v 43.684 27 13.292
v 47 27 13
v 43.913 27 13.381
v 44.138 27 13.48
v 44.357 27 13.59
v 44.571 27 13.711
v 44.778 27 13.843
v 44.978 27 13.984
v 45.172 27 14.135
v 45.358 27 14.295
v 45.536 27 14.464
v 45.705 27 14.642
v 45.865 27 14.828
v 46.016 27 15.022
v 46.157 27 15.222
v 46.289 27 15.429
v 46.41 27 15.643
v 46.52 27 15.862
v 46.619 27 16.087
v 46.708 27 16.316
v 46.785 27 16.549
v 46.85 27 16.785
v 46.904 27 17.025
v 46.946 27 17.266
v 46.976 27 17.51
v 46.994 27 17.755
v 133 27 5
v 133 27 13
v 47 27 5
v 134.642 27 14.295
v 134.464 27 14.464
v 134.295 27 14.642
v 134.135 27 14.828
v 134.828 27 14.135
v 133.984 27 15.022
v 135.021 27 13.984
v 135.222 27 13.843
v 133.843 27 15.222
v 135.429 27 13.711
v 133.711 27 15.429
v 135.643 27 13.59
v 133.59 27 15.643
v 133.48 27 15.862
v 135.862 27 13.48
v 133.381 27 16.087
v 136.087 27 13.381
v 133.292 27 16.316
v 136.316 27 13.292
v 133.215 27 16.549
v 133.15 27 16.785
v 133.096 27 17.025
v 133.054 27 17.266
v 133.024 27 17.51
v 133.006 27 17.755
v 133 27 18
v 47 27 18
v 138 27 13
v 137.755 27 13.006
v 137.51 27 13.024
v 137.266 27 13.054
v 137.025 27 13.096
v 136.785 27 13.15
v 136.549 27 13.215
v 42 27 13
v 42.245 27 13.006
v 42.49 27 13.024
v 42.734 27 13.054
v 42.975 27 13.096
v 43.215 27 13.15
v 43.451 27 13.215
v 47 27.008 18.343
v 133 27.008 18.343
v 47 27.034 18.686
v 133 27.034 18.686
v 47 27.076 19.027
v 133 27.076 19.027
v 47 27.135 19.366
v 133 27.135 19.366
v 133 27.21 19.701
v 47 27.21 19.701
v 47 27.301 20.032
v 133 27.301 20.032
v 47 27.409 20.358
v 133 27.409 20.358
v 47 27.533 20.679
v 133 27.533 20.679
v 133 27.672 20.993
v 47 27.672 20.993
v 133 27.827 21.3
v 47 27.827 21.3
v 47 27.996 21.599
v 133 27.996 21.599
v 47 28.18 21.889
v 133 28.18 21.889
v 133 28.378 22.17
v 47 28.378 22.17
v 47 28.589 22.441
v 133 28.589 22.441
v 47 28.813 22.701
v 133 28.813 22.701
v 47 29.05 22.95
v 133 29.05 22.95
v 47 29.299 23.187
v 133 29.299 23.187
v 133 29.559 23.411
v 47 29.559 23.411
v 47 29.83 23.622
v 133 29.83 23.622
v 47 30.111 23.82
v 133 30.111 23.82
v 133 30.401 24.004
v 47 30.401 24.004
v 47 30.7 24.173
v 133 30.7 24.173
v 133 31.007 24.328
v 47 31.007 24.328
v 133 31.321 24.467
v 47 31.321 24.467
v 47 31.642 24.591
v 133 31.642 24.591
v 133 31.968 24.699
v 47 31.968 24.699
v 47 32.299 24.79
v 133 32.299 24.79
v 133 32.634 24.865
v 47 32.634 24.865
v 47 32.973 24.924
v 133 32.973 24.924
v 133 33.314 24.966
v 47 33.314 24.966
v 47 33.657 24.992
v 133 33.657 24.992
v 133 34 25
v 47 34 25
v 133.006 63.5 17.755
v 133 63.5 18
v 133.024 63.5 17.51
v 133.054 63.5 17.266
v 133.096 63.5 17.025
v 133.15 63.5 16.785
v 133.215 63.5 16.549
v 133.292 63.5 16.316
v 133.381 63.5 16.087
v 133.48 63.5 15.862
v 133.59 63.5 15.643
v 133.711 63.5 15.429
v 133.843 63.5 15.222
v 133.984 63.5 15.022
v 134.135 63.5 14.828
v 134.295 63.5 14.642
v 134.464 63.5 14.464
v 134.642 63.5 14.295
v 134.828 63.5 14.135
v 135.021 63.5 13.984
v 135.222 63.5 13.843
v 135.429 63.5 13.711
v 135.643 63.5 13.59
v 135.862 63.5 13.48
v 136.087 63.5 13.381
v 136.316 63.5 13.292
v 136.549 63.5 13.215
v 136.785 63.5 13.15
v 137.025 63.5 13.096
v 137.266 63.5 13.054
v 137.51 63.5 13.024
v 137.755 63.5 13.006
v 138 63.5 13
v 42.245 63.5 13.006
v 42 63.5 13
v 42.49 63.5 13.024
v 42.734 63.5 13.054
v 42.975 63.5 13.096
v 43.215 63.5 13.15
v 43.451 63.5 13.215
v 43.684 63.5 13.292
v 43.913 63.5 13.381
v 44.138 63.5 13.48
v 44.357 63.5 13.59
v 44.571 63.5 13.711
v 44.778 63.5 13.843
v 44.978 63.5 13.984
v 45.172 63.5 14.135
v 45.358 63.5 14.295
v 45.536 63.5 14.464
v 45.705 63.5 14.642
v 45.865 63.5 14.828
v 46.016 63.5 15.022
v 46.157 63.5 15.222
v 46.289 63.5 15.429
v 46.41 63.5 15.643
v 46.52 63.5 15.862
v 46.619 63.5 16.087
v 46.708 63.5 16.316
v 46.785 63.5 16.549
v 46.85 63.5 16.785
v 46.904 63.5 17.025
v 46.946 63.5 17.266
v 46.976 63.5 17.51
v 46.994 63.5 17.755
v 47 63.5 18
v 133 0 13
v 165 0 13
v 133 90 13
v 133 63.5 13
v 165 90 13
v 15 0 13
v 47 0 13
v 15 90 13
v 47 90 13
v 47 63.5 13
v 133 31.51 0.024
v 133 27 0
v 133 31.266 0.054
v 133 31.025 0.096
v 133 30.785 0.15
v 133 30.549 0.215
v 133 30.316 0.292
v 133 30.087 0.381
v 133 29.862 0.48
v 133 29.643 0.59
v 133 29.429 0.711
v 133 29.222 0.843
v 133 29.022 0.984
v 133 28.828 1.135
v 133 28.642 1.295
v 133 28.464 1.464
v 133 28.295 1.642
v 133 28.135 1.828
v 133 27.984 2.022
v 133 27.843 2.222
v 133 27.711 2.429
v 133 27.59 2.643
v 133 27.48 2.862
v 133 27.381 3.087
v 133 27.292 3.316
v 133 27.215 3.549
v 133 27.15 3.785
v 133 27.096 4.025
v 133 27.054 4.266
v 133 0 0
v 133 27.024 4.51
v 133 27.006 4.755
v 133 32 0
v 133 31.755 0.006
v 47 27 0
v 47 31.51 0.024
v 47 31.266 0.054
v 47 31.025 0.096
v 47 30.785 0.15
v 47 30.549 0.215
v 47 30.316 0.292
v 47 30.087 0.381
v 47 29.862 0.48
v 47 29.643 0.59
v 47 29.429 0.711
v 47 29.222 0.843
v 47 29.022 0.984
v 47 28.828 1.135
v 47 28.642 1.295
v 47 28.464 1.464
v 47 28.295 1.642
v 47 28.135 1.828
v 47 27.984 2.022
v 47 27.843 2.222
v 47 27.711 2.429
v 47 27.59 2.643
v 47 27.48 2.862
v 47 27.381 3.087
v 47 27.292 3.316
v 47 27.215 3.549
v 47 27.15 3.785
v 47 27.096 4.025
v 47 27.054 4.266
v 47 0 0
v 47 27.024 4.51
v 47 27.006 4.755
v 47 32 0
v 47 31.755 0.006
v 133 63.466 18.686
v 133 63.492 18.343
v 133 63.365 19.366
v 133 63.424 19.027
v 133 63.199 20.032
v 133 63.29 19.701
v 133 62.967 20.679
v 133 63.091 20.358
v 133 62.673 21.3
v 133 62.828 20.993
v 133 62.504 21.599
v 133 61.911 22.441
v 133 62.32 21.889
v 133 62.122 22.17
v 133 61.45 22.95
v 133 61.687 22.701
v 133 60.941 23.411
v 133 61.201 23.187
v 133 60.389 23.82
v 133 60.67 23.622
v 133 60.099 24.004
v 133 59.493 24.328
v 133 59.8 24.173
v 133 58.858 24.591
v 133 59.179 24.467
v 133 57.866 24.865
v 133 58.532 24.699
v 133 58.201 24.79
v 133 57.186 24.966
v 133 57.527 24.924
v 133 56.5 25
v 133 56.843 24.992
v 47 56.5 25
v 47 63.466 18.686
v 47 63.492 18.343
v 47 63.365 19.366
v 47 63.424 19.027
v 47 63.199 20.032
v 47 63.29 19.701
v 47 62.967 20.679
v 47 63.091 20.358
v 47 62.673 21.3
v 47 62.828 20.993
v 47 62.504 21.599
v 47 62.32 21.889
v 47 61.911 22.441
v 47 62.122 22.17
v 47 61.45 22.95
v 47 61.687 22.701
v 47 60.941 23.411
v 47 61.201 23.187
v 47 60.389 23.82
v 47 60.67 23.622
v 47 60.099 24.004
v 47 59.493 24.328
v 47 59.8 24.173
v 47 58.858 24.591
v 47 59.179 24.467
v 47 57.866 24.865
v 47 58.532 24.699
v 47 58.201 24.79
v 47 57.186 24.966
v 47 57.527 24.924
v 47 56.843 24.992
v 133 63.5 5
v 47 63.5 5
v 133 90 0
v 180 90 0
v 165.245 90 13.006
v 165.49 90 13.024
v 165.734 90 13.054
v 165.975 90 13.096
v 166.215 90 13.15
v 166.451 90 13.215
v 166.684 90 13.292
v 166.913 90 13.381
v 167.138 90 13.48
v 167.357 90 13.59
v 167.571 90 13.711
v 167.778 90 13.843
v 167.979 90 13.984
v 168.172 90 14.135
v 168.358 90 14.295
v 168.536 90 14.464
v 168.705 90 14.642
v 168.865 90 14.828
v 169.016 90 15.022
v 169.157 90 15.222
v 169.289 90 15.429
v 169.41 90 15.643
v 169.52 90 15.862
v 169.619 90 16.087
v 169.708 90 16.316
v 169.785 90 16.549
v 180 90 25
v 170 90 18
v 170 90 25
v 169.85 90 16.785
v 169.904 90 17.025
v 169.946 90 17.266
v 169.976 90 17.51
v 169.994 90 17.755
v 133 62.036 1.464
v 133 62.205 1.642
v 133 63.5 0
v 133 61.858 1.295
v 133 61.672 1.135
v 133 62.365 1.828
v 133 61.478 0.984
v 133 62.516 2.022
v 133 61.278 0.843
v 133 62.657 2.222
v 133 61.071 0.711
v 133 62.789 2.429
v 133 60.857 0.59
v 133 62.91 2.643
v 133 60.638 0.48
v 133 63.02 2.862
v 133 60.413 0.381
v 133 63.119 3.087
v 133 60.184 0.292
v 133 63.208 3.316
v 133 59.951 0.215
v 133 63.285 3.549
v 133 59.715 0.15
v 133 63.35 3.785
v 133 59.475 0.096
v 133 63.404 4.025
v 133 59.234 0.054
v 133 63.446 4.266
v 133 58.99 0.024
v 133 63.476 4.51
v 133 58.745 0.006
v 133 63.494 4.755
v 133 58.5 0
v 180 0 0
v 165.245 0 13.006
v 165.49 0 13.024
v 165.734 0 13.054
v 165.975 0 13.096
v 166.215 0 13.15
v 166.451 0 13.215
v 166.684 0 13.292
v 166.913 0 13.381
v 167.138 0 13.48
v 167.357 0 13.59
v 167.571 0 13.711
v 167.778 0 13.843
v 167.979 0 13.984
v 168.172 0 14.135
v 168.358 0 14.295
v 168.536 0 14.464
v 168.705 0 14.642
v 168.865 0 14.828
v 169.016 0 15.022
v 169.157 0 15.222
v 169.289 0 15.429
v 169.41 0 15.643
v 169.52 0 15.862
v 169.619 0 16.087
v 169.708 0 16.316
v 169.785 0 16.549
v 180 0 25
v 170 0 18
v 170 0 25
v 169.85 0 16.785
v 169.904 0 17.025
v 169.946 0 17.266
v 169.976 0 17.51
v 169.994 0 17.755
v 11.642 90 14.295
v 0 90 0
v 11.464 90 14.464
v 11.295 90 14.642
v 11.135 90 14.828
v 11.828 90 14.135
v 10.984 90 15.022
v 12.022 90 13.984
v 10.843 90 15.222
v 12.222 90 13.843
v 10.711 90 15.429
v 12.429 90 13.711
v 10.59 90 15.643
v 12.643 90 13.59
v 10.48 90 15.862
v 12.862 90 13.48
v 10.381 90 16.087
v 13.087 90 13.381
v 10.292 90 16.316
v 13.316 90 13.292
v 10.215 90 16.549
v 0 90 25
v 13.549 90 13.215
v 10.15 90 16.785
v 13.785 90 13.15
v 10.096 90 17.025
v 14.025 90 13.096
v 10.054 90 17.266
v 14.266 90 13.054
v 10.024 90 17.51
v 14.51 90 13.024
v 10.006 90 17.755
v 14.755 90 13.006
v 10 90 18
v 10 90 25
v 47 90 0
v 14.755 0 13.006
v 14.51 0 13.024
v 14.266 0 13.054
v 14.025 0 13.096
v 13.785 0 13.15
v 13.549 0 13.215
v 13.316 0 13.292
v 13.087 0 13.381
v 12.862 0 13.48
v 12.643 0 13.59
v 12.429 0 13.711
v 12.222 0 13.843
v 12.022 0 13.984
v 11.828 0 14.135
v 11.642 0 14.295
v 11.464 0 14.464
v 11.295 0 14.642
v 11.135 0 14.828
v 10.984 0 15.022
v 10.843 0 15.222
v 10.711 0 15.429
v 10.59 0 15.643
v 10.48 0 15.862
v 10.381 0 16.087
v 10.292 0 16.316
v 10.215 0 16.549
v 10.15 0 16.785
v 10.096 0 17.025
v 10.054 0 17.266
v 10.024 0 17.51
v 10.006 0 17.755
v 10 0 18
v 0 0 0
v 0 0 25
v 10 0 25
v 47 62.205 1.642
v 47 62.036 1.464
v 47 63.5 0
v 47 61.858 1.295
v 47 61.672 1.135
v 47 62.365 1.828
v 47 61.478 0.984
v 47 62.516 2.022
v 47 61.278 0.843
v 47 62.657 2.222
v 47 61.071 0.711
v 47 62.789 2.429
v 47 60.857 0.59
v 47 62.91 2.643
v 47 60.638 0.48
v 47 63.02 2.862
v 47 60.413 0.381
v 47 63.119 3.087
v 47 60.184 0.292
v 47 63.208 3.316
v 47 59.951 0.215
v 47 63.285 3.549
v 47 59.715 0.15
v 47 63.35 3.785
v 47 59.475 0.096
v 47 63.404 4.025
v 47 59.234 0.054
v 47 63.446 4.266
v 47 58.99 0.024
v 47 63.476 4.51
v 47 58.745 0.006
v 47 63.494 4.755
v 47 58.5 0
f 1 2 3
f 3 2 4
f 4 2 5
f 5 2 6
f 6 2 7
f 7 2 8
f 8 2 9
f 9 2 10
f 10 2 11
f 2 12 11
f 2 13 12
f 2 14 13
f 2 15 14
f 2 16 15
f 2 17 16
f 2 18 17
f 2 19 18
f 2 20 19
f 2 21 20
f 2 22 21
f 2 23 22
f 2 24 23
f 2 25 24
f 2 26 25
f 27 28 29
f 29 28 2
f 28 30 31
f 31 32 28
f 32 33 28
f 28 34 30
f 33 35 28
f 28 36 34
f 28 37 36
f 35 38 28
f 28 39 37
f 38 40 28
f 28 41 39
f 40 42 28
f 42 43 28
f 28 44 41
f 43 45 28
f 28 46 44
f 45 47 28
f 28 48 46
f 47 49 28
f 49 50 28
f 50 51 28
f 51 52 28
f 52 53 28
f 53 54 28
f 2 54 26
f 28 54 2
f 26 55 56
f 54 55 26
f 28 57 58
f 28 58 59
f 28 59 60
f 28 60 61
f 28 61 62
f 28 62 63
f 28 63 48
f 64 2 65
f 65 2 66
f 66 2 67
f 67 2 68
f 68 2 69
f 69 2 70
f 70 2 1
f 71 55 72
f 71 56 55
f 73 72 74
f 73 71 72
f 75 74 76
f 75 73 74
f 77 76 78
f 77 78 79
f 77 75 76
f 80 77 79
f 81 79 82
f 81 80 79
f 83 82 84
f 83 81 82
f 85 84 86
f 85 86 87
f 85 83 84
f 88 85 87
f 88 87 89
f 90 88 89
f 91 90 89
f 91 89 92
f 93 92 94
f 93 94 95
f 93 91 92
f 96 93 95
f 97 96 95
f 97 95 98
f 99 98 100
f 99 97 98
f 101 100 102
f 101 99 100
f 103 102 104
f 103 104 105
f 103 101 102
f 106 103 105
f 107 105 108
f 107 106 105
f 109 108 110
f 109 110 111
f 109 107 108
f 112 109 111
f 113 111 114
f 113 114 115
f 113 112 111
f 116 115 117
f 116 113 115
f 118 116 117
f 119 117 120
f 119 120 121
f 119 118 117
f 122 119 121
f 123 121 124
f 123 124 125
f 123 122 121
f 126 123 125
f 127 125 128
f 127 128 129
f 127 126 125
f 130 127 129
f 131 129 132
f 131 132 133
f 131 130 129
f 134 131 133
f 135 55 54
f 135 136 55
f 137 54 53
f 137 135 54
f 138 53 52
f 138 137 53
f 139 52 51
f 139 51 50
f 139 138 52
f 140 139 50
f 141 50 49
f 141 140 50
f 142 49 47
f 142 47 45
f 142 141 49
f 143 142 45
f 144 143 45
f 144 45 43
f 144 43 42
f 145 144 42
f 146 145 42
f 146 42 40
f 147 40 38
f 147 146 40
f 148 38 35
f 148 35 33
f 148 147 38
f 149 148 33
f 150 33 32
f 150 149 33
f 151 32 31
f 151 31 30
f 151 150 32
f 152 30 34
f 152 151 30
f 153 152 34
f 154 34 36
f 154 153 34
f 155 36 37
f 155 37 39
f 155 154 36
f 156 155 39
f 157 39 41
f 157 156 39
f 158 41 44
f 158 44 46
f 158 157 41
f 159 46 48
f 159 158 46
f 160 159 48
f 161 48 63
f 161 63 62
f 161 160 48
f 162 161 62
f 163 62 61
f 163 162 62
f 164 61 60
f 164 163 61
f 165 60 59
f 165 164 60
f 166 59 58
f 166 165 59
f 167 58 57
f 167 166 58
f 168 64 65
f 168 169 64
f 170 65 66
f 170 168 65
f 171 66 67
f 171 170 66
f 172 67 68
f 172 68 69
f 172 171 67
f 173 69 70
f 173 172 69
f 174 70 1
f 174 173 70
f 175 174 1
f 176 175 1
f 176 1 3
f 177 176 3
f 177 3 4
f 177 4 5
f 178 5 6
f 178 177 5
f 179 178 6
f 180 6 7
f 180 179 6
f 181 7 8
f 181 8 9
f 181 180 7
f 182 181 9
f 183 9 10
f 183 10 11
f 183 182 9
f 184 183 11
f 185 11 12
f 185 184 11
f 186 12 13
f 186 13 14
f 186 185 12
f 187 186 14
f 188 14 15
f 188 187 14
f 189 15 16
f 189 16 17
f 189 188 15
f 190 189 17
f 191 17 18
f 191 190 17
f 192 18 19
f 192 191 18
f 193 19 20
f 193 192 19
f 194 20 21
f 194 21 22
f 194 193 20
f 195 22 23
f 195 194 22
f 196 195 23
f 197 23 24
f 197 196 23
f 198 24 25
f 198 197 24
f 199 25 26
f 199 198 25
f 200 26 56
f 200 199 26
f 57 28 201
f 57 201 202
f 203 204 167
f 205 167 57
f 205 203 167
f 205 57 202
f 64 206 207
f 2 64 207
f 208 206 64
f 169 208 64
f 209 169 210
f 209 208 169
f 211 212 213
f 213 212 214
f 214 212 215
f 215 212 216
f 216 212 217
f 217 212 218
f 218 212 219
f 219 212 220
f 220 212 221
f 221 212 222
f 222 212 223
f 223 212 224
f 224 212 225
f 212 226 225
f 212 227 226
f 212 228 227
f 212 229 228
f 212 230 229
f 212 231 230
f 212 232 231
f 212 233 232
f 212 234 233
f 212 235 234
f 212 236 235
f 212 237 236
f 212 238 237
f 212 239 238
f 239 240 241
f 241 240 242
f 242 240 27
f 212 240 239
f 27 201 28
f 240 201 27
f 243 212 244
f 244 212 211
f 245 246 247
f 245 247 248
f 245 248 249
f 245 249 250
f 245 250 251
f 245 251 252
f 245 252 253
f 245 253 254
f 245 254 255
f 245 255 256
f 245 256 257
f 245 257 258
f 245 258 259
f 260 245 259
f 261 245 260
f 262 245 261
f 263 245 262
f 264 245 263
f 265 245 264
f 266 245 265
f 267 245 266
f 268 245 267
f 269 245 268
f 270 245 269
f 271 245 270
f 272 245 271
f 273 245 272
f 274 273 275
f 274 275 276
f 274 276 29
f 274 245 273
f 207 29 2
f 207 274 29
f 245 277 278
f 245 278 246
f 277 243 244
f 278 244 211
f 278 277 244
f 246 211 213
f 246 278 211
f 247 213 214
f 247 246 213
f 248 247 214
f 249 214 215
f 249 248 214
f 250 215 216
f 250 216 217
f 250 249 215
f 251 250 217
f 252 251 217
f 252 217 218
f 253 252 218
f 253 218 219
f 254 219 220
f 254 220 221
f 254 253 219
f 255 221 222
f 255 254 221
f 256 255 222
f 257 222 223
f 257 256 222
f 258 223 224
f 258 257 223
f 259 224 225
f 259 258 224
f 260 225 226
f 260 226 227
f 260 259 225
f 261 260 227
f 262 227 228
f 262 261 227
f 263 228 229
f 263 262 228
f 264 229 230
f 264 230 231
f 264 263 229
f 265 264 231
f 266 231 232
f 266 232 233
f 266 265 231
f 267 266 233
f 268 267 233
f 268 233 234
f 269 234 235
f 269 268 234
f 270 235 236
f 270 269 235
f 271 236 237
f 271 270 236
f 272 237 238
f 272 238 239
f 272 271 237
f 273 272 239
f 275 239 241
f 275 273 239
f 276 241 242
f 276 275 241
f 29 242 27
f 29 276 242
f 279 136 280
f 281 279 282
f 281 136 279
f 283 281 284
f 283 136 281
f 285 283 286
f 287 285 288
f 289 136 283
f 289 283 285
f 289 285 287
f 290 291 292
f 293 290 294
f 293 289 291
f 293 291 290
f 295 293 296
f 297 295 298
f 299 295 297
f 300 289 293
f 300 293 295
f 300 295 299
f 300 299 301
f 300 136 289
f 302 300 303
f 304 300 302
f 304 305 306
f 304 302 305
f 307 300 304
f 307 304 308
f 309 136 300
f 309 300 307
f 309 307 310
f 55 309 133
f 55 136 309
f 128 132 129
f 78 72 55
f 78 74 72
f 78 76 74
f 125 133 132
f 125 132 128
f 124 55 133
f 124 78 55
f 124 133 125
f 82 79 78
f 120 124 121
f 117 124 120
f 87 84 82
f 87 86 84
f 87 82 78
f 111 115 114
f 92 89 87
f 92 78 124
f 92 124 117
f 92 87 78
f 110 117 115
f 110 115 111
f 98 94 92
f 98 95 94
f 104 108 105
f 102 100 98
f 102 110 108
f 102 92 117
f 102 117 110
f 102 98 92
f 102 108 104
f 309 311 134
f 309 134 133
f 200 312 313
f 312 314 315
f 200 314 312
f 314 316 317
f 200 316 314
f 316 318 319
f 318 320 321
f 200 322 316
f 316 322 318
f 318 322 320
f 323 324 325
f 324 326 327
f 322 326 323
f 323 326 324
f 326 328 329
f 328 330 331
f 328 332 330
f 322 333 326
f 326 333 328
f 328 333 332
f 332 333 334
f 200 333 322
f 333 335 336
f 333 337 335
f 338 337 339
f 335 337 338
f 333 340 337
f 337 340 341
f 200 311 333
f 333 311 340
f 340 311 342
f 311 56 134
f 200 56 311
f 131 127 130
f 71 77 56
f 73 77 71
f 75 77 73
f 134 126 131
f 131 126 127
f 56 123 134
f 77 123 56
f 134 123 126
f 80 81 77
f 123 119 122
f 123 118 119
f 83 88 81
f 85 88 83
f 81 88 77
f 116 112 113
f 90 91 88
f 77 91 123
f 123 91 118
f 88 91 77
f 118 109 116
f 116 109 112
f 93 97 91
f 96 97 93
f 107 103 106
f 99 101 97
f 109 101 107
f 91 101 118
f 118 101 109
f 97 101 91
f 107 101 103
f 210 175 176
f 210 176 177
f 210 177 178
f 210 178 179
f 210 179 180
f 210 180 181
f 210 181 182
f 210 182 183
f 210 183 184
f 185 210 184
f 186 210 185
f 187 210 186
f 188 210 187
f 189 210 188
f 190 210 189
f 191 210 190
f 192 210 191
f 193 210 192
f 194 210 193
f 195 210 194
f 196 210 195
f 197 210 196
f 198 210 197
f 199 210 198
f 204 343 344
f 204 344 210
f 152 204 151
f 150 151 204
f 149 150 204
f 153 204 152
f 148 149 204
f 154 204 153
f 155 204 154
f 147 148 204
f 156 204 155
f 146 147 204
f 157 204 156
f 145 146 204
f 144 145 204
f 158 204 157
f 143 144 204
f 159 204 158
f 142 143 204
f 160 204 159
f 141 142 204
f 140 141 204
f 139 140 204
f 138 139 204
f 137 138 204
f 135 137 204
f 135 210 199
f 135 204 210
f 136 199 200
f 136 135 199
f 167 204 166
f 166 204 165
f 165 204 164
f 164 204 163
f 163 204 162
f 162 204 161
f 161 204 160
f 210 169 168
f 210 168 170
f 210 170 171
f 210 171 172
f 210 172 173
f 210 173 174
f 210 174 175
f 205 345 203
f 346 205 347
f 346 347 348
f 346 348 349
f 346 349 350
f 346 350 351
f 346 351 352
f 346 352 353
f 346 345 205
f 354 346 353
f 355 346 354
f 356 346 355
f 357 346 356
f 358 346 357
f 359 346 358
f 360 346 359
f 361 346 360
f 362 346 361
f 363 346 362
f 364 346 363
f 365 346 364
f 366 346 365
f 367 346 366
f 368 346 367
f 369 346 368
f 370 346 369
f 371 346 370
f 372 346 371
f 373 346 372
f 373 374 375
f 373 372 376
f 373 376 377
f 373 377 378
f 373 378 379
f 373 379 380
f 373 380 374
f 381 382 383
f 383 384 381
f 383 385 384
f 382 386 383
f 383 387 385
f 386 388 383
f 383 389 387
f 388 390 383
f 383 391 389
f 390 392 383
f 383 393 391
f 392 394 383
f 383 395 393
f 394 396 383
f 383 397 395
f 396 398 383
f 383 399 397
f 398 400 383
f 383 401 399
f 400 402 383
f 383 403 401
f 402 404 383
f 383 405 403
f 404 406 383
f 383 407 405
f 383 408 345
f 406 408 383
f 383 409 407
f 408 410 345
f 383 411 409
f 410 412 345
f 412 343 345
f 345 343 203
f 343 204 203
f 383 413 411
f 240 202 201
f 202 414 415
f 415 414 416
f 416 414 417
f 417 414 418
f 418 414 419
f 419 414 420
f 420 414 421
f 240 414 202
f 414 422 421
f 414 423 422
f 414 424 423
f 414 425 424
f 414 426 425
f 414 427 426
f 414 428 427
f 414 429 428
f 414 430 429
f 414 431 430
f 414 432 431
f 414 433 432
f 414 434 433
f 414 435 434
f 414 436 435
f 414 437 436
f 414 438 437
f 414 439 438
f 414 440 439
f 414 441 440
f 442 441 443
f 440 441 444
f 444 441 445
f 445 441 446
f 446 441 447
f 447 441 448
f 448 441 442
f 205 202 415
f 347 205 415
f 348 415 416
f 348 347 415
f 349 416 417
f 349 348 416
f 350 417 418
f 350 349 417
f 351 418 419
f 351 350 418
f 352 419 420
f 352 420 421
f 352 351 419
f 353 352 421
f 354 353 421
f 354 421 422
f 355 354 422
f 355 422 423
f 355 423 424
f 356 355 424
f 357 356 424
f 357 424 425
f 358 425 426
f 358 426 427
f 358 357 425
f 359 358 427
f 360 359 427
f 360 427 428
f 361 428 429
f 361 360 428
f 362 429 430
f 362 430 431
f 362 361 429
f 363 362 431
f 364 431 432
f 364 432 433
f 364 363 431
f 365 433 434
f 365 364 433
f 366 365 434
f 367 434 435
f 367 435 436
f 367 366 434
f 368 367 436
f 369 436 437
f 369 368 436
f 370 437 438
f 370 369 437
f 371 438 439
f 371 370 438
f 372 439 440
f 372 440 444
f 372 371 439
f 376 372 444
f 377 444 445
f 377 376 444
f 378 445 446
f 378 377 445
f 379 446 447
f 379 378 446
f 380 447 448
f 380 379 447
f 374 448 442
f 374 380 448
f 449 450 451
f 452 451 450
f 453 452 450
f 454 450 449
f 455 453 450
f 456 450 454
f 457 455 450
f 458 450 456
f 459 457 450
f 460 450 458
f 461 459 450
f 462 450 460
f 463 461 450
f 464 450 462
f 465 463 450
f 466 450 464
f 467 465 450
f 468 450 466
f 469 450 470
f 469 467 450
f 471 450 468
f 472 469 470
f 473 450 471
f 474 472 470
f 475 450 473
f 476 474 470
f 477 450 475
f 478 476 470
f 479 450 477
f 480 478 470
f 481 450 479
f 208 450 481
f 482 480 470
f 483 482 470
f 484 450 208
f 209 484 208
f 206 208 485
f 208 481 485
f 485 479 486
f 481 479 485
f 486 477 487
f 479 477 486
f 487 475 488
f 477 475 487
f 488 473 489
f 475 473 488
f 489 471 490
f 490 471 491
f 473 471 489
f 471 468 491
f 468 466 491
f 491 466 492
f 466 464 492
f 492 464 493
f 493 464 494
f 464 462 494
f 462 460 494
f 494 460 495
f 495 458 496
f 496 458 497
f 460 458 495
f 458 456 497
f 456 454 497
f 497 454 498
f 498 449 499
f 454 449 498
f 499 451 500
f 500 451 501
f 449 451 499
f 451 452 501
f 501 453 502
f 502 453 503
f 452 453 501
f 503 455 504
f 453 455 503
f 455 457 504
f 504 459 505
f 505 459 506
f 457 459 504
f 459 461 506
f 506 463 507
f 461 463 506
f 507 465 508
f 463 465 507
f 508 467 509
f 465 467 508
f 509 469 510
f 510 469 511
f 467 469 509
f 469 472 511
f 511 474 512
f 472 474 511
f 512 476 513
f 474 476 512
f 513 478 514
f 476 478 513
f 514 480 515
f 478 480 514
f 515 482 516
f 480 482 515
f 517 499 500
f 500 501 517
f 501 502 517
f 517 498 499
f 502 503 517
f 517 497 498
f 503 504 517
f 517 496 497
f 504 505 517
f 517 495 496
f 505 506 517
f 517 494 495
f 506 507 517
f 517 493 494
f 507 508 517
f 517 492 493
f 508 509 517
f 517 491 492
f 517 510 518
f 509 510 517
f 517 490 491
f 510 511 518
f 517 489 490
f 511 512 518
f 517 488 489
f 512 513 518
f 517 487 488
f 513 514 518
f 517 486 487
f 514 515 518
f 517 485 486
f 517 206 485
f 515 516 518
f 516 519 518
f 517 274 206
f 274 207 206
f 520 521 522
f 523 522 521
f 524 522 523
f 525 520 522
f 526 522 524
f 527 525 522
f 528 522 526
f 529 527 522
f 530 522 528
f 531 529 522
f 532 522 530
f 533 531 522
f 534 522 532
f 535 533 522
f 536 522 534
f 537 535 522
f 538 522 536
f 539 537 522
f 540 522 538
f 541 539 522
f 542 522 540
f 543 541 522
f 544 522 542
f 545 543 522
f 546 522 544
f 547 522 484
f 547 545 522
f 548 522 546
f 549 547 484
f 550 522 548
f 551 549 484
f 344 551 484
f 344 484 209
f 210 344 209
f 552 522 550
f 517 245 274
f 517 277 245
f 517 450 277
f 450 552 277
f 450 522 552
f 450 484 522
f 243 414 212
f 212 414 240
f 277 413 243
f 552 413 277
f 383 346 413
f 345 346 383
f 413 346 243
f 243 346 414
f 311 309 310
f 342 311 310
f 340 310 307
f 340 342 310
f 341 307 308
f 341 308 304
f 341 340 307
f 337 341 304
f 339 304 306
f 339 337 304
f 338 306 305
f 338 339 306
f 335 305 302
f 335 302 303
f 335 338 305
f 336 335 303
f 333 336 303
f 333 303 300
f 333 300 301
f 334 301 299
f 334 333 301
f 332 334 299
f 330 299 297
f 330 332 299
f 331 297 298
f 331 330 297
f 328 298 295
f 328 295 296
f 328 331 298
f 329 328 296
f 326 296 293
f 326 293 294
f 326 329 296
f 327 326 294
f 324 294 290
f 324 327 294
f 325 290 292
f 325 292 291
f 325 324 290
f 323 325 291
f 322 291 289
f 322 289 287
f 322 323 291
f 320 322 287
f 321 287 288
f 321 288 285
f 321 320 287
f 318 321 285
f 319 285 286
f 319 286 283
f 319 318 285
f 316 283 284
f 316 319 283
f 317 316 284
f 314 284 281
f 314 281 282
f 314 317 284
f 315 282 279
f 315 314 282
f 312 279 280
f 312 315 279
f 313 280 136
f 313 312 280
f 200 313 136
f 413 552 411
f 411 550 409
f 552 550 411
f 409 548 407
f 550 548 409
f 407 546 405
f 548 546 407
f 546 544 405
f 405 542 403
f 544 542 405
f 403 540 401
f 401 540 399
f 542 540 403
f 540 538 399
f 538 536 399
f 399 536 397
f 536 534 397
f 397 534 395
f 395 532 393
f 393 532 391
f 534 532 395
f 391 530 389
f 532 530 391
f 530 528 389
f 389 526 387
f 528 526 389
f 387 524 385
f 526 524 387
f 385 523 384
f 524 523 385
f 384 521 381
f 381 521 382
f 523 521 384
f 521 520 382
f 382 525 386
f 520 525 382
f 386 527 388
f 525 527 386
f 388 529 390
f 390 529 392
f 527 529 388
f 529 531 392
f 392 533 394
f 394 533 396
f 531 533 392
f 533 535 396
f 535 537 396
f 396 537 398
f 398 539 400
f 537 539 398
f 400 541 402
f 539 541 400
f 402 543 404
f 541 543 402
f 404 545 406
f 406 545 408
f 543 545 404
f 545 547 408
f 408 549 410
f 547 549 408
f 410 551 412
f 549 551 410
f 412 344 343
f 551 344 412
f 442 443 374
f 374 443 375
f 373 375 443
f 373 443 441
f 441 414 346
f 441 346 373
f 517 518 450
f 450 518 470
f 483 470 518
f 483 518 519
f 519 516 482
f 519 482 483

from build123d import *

# Parameters (mm, degrees)
BOX002_W     = 37
BOX002_H     = 100
BOX002_DEPTH = 30
BOX003_W     = 86
BOX003_H     = 28
BOX003_DEPTH = 42
BOX004_W     = 86
BOX004_H     = 27.5
BOX004_DEPTH = 42
BOX001_W     = 37
BOX001_H     = 100
BOX001_DEPTH = 30
BOX_W        = 180
BOX_H        = 90
BOX_DEPTH    = 25
FILLET_R     = 5
FILLET001_R  = 5
FILLET002_R  = 7


with BuildPart() as cube002:
    # Box002 → Box002 (new body)
    with BuildSketch(Plane(origin=(133, -5, 13), x_dir=(1, 0, 0), z_dir=(0, 0, 1))):
        with Locations((18.5, 50)):
            Rectangle(BOX002_W, BOX002_H)
    extrude(amount=BOX002_DEPTH)


with BuildPart() as cube003:
    # Box003 → Box003 (new body)
    with BuildSketch(Plane(origin=(47, -1, -1), x_dir=(1, 0, 0), z_dir=(0, 0, 1))):
        with Locations((43, 14)):
            Rectangle(BOX003_W, BOX003_H)
    extrude(amount=BOX003_DEPTH)


with BuildPart() as cube004:
    # Box004 → Box004 (new body)
    with BuildSketch(Plane(origin=(47, 63.5, -1), x_dir=(1, 0, 0), z_dir=(0, 0, 1))):
        with Locations((43, 13.75)):
            Rectangle(BOX004_W, BOX004_H)
    extrude(amount=BOX004_DEPTH)


with BuildPart() as fusion:
    # Box001 → Box001 (new body)
    with BuildSketch(Plane(origin=(10, -5, 13), x_dir=(1, 0, 0), z_dir=(0, 0, 1))):
        with Locations((18.5, 50)):
            Rectangle(BOX001_W, BOX001_H)
    extrude(amount=BOX001_DEPTH)

    # Fusion: union Cube002, Cube003, Cube004
    add(cube002.part)
    add(cube003.part)
    add(cube004.part)


with BuildPart() as fillet002:
    # Box → Box (new body)
    with BuildSketch(Plane.XY):
        with Locations((90, 45)):
            Rectangle(BOX_W, BOX_H)
    extrude(amount=BOX_DEPTH)

    # Cut: cut Fusion
    add(fusion.part, mode=Mode.SUBTRACT)

    # Fillet
    fillet_edges = [fillet002.edges().sort_by_distance(p)[0] for p in [
        (10, 45, 13),
        (47, 45.25, 13),
        (133, 45.25, 13),
        (170, 45, 13),
    ]]
    fillet(fillet_edges, radius=FILLET_R)

    # Fillet001
    fillet001_edges = [fillet002.edges().sort_by_distance(p)[0] for p in [
        (90, 63.5, 0),
        (90, 27, 0),
    ]]
    fillet(fillet001_edges, radius=FILLET001_R)

    # Fillet002
    fillet002_edges = [fillet002.edges().sort_by_distance(p)[0] for p in [
        (90, 27, 25),
        (90, 63.5, 25),
    ]]
    fillet(fillet002_edges, radius=FILLET002_R)


solid = fillet002.part
